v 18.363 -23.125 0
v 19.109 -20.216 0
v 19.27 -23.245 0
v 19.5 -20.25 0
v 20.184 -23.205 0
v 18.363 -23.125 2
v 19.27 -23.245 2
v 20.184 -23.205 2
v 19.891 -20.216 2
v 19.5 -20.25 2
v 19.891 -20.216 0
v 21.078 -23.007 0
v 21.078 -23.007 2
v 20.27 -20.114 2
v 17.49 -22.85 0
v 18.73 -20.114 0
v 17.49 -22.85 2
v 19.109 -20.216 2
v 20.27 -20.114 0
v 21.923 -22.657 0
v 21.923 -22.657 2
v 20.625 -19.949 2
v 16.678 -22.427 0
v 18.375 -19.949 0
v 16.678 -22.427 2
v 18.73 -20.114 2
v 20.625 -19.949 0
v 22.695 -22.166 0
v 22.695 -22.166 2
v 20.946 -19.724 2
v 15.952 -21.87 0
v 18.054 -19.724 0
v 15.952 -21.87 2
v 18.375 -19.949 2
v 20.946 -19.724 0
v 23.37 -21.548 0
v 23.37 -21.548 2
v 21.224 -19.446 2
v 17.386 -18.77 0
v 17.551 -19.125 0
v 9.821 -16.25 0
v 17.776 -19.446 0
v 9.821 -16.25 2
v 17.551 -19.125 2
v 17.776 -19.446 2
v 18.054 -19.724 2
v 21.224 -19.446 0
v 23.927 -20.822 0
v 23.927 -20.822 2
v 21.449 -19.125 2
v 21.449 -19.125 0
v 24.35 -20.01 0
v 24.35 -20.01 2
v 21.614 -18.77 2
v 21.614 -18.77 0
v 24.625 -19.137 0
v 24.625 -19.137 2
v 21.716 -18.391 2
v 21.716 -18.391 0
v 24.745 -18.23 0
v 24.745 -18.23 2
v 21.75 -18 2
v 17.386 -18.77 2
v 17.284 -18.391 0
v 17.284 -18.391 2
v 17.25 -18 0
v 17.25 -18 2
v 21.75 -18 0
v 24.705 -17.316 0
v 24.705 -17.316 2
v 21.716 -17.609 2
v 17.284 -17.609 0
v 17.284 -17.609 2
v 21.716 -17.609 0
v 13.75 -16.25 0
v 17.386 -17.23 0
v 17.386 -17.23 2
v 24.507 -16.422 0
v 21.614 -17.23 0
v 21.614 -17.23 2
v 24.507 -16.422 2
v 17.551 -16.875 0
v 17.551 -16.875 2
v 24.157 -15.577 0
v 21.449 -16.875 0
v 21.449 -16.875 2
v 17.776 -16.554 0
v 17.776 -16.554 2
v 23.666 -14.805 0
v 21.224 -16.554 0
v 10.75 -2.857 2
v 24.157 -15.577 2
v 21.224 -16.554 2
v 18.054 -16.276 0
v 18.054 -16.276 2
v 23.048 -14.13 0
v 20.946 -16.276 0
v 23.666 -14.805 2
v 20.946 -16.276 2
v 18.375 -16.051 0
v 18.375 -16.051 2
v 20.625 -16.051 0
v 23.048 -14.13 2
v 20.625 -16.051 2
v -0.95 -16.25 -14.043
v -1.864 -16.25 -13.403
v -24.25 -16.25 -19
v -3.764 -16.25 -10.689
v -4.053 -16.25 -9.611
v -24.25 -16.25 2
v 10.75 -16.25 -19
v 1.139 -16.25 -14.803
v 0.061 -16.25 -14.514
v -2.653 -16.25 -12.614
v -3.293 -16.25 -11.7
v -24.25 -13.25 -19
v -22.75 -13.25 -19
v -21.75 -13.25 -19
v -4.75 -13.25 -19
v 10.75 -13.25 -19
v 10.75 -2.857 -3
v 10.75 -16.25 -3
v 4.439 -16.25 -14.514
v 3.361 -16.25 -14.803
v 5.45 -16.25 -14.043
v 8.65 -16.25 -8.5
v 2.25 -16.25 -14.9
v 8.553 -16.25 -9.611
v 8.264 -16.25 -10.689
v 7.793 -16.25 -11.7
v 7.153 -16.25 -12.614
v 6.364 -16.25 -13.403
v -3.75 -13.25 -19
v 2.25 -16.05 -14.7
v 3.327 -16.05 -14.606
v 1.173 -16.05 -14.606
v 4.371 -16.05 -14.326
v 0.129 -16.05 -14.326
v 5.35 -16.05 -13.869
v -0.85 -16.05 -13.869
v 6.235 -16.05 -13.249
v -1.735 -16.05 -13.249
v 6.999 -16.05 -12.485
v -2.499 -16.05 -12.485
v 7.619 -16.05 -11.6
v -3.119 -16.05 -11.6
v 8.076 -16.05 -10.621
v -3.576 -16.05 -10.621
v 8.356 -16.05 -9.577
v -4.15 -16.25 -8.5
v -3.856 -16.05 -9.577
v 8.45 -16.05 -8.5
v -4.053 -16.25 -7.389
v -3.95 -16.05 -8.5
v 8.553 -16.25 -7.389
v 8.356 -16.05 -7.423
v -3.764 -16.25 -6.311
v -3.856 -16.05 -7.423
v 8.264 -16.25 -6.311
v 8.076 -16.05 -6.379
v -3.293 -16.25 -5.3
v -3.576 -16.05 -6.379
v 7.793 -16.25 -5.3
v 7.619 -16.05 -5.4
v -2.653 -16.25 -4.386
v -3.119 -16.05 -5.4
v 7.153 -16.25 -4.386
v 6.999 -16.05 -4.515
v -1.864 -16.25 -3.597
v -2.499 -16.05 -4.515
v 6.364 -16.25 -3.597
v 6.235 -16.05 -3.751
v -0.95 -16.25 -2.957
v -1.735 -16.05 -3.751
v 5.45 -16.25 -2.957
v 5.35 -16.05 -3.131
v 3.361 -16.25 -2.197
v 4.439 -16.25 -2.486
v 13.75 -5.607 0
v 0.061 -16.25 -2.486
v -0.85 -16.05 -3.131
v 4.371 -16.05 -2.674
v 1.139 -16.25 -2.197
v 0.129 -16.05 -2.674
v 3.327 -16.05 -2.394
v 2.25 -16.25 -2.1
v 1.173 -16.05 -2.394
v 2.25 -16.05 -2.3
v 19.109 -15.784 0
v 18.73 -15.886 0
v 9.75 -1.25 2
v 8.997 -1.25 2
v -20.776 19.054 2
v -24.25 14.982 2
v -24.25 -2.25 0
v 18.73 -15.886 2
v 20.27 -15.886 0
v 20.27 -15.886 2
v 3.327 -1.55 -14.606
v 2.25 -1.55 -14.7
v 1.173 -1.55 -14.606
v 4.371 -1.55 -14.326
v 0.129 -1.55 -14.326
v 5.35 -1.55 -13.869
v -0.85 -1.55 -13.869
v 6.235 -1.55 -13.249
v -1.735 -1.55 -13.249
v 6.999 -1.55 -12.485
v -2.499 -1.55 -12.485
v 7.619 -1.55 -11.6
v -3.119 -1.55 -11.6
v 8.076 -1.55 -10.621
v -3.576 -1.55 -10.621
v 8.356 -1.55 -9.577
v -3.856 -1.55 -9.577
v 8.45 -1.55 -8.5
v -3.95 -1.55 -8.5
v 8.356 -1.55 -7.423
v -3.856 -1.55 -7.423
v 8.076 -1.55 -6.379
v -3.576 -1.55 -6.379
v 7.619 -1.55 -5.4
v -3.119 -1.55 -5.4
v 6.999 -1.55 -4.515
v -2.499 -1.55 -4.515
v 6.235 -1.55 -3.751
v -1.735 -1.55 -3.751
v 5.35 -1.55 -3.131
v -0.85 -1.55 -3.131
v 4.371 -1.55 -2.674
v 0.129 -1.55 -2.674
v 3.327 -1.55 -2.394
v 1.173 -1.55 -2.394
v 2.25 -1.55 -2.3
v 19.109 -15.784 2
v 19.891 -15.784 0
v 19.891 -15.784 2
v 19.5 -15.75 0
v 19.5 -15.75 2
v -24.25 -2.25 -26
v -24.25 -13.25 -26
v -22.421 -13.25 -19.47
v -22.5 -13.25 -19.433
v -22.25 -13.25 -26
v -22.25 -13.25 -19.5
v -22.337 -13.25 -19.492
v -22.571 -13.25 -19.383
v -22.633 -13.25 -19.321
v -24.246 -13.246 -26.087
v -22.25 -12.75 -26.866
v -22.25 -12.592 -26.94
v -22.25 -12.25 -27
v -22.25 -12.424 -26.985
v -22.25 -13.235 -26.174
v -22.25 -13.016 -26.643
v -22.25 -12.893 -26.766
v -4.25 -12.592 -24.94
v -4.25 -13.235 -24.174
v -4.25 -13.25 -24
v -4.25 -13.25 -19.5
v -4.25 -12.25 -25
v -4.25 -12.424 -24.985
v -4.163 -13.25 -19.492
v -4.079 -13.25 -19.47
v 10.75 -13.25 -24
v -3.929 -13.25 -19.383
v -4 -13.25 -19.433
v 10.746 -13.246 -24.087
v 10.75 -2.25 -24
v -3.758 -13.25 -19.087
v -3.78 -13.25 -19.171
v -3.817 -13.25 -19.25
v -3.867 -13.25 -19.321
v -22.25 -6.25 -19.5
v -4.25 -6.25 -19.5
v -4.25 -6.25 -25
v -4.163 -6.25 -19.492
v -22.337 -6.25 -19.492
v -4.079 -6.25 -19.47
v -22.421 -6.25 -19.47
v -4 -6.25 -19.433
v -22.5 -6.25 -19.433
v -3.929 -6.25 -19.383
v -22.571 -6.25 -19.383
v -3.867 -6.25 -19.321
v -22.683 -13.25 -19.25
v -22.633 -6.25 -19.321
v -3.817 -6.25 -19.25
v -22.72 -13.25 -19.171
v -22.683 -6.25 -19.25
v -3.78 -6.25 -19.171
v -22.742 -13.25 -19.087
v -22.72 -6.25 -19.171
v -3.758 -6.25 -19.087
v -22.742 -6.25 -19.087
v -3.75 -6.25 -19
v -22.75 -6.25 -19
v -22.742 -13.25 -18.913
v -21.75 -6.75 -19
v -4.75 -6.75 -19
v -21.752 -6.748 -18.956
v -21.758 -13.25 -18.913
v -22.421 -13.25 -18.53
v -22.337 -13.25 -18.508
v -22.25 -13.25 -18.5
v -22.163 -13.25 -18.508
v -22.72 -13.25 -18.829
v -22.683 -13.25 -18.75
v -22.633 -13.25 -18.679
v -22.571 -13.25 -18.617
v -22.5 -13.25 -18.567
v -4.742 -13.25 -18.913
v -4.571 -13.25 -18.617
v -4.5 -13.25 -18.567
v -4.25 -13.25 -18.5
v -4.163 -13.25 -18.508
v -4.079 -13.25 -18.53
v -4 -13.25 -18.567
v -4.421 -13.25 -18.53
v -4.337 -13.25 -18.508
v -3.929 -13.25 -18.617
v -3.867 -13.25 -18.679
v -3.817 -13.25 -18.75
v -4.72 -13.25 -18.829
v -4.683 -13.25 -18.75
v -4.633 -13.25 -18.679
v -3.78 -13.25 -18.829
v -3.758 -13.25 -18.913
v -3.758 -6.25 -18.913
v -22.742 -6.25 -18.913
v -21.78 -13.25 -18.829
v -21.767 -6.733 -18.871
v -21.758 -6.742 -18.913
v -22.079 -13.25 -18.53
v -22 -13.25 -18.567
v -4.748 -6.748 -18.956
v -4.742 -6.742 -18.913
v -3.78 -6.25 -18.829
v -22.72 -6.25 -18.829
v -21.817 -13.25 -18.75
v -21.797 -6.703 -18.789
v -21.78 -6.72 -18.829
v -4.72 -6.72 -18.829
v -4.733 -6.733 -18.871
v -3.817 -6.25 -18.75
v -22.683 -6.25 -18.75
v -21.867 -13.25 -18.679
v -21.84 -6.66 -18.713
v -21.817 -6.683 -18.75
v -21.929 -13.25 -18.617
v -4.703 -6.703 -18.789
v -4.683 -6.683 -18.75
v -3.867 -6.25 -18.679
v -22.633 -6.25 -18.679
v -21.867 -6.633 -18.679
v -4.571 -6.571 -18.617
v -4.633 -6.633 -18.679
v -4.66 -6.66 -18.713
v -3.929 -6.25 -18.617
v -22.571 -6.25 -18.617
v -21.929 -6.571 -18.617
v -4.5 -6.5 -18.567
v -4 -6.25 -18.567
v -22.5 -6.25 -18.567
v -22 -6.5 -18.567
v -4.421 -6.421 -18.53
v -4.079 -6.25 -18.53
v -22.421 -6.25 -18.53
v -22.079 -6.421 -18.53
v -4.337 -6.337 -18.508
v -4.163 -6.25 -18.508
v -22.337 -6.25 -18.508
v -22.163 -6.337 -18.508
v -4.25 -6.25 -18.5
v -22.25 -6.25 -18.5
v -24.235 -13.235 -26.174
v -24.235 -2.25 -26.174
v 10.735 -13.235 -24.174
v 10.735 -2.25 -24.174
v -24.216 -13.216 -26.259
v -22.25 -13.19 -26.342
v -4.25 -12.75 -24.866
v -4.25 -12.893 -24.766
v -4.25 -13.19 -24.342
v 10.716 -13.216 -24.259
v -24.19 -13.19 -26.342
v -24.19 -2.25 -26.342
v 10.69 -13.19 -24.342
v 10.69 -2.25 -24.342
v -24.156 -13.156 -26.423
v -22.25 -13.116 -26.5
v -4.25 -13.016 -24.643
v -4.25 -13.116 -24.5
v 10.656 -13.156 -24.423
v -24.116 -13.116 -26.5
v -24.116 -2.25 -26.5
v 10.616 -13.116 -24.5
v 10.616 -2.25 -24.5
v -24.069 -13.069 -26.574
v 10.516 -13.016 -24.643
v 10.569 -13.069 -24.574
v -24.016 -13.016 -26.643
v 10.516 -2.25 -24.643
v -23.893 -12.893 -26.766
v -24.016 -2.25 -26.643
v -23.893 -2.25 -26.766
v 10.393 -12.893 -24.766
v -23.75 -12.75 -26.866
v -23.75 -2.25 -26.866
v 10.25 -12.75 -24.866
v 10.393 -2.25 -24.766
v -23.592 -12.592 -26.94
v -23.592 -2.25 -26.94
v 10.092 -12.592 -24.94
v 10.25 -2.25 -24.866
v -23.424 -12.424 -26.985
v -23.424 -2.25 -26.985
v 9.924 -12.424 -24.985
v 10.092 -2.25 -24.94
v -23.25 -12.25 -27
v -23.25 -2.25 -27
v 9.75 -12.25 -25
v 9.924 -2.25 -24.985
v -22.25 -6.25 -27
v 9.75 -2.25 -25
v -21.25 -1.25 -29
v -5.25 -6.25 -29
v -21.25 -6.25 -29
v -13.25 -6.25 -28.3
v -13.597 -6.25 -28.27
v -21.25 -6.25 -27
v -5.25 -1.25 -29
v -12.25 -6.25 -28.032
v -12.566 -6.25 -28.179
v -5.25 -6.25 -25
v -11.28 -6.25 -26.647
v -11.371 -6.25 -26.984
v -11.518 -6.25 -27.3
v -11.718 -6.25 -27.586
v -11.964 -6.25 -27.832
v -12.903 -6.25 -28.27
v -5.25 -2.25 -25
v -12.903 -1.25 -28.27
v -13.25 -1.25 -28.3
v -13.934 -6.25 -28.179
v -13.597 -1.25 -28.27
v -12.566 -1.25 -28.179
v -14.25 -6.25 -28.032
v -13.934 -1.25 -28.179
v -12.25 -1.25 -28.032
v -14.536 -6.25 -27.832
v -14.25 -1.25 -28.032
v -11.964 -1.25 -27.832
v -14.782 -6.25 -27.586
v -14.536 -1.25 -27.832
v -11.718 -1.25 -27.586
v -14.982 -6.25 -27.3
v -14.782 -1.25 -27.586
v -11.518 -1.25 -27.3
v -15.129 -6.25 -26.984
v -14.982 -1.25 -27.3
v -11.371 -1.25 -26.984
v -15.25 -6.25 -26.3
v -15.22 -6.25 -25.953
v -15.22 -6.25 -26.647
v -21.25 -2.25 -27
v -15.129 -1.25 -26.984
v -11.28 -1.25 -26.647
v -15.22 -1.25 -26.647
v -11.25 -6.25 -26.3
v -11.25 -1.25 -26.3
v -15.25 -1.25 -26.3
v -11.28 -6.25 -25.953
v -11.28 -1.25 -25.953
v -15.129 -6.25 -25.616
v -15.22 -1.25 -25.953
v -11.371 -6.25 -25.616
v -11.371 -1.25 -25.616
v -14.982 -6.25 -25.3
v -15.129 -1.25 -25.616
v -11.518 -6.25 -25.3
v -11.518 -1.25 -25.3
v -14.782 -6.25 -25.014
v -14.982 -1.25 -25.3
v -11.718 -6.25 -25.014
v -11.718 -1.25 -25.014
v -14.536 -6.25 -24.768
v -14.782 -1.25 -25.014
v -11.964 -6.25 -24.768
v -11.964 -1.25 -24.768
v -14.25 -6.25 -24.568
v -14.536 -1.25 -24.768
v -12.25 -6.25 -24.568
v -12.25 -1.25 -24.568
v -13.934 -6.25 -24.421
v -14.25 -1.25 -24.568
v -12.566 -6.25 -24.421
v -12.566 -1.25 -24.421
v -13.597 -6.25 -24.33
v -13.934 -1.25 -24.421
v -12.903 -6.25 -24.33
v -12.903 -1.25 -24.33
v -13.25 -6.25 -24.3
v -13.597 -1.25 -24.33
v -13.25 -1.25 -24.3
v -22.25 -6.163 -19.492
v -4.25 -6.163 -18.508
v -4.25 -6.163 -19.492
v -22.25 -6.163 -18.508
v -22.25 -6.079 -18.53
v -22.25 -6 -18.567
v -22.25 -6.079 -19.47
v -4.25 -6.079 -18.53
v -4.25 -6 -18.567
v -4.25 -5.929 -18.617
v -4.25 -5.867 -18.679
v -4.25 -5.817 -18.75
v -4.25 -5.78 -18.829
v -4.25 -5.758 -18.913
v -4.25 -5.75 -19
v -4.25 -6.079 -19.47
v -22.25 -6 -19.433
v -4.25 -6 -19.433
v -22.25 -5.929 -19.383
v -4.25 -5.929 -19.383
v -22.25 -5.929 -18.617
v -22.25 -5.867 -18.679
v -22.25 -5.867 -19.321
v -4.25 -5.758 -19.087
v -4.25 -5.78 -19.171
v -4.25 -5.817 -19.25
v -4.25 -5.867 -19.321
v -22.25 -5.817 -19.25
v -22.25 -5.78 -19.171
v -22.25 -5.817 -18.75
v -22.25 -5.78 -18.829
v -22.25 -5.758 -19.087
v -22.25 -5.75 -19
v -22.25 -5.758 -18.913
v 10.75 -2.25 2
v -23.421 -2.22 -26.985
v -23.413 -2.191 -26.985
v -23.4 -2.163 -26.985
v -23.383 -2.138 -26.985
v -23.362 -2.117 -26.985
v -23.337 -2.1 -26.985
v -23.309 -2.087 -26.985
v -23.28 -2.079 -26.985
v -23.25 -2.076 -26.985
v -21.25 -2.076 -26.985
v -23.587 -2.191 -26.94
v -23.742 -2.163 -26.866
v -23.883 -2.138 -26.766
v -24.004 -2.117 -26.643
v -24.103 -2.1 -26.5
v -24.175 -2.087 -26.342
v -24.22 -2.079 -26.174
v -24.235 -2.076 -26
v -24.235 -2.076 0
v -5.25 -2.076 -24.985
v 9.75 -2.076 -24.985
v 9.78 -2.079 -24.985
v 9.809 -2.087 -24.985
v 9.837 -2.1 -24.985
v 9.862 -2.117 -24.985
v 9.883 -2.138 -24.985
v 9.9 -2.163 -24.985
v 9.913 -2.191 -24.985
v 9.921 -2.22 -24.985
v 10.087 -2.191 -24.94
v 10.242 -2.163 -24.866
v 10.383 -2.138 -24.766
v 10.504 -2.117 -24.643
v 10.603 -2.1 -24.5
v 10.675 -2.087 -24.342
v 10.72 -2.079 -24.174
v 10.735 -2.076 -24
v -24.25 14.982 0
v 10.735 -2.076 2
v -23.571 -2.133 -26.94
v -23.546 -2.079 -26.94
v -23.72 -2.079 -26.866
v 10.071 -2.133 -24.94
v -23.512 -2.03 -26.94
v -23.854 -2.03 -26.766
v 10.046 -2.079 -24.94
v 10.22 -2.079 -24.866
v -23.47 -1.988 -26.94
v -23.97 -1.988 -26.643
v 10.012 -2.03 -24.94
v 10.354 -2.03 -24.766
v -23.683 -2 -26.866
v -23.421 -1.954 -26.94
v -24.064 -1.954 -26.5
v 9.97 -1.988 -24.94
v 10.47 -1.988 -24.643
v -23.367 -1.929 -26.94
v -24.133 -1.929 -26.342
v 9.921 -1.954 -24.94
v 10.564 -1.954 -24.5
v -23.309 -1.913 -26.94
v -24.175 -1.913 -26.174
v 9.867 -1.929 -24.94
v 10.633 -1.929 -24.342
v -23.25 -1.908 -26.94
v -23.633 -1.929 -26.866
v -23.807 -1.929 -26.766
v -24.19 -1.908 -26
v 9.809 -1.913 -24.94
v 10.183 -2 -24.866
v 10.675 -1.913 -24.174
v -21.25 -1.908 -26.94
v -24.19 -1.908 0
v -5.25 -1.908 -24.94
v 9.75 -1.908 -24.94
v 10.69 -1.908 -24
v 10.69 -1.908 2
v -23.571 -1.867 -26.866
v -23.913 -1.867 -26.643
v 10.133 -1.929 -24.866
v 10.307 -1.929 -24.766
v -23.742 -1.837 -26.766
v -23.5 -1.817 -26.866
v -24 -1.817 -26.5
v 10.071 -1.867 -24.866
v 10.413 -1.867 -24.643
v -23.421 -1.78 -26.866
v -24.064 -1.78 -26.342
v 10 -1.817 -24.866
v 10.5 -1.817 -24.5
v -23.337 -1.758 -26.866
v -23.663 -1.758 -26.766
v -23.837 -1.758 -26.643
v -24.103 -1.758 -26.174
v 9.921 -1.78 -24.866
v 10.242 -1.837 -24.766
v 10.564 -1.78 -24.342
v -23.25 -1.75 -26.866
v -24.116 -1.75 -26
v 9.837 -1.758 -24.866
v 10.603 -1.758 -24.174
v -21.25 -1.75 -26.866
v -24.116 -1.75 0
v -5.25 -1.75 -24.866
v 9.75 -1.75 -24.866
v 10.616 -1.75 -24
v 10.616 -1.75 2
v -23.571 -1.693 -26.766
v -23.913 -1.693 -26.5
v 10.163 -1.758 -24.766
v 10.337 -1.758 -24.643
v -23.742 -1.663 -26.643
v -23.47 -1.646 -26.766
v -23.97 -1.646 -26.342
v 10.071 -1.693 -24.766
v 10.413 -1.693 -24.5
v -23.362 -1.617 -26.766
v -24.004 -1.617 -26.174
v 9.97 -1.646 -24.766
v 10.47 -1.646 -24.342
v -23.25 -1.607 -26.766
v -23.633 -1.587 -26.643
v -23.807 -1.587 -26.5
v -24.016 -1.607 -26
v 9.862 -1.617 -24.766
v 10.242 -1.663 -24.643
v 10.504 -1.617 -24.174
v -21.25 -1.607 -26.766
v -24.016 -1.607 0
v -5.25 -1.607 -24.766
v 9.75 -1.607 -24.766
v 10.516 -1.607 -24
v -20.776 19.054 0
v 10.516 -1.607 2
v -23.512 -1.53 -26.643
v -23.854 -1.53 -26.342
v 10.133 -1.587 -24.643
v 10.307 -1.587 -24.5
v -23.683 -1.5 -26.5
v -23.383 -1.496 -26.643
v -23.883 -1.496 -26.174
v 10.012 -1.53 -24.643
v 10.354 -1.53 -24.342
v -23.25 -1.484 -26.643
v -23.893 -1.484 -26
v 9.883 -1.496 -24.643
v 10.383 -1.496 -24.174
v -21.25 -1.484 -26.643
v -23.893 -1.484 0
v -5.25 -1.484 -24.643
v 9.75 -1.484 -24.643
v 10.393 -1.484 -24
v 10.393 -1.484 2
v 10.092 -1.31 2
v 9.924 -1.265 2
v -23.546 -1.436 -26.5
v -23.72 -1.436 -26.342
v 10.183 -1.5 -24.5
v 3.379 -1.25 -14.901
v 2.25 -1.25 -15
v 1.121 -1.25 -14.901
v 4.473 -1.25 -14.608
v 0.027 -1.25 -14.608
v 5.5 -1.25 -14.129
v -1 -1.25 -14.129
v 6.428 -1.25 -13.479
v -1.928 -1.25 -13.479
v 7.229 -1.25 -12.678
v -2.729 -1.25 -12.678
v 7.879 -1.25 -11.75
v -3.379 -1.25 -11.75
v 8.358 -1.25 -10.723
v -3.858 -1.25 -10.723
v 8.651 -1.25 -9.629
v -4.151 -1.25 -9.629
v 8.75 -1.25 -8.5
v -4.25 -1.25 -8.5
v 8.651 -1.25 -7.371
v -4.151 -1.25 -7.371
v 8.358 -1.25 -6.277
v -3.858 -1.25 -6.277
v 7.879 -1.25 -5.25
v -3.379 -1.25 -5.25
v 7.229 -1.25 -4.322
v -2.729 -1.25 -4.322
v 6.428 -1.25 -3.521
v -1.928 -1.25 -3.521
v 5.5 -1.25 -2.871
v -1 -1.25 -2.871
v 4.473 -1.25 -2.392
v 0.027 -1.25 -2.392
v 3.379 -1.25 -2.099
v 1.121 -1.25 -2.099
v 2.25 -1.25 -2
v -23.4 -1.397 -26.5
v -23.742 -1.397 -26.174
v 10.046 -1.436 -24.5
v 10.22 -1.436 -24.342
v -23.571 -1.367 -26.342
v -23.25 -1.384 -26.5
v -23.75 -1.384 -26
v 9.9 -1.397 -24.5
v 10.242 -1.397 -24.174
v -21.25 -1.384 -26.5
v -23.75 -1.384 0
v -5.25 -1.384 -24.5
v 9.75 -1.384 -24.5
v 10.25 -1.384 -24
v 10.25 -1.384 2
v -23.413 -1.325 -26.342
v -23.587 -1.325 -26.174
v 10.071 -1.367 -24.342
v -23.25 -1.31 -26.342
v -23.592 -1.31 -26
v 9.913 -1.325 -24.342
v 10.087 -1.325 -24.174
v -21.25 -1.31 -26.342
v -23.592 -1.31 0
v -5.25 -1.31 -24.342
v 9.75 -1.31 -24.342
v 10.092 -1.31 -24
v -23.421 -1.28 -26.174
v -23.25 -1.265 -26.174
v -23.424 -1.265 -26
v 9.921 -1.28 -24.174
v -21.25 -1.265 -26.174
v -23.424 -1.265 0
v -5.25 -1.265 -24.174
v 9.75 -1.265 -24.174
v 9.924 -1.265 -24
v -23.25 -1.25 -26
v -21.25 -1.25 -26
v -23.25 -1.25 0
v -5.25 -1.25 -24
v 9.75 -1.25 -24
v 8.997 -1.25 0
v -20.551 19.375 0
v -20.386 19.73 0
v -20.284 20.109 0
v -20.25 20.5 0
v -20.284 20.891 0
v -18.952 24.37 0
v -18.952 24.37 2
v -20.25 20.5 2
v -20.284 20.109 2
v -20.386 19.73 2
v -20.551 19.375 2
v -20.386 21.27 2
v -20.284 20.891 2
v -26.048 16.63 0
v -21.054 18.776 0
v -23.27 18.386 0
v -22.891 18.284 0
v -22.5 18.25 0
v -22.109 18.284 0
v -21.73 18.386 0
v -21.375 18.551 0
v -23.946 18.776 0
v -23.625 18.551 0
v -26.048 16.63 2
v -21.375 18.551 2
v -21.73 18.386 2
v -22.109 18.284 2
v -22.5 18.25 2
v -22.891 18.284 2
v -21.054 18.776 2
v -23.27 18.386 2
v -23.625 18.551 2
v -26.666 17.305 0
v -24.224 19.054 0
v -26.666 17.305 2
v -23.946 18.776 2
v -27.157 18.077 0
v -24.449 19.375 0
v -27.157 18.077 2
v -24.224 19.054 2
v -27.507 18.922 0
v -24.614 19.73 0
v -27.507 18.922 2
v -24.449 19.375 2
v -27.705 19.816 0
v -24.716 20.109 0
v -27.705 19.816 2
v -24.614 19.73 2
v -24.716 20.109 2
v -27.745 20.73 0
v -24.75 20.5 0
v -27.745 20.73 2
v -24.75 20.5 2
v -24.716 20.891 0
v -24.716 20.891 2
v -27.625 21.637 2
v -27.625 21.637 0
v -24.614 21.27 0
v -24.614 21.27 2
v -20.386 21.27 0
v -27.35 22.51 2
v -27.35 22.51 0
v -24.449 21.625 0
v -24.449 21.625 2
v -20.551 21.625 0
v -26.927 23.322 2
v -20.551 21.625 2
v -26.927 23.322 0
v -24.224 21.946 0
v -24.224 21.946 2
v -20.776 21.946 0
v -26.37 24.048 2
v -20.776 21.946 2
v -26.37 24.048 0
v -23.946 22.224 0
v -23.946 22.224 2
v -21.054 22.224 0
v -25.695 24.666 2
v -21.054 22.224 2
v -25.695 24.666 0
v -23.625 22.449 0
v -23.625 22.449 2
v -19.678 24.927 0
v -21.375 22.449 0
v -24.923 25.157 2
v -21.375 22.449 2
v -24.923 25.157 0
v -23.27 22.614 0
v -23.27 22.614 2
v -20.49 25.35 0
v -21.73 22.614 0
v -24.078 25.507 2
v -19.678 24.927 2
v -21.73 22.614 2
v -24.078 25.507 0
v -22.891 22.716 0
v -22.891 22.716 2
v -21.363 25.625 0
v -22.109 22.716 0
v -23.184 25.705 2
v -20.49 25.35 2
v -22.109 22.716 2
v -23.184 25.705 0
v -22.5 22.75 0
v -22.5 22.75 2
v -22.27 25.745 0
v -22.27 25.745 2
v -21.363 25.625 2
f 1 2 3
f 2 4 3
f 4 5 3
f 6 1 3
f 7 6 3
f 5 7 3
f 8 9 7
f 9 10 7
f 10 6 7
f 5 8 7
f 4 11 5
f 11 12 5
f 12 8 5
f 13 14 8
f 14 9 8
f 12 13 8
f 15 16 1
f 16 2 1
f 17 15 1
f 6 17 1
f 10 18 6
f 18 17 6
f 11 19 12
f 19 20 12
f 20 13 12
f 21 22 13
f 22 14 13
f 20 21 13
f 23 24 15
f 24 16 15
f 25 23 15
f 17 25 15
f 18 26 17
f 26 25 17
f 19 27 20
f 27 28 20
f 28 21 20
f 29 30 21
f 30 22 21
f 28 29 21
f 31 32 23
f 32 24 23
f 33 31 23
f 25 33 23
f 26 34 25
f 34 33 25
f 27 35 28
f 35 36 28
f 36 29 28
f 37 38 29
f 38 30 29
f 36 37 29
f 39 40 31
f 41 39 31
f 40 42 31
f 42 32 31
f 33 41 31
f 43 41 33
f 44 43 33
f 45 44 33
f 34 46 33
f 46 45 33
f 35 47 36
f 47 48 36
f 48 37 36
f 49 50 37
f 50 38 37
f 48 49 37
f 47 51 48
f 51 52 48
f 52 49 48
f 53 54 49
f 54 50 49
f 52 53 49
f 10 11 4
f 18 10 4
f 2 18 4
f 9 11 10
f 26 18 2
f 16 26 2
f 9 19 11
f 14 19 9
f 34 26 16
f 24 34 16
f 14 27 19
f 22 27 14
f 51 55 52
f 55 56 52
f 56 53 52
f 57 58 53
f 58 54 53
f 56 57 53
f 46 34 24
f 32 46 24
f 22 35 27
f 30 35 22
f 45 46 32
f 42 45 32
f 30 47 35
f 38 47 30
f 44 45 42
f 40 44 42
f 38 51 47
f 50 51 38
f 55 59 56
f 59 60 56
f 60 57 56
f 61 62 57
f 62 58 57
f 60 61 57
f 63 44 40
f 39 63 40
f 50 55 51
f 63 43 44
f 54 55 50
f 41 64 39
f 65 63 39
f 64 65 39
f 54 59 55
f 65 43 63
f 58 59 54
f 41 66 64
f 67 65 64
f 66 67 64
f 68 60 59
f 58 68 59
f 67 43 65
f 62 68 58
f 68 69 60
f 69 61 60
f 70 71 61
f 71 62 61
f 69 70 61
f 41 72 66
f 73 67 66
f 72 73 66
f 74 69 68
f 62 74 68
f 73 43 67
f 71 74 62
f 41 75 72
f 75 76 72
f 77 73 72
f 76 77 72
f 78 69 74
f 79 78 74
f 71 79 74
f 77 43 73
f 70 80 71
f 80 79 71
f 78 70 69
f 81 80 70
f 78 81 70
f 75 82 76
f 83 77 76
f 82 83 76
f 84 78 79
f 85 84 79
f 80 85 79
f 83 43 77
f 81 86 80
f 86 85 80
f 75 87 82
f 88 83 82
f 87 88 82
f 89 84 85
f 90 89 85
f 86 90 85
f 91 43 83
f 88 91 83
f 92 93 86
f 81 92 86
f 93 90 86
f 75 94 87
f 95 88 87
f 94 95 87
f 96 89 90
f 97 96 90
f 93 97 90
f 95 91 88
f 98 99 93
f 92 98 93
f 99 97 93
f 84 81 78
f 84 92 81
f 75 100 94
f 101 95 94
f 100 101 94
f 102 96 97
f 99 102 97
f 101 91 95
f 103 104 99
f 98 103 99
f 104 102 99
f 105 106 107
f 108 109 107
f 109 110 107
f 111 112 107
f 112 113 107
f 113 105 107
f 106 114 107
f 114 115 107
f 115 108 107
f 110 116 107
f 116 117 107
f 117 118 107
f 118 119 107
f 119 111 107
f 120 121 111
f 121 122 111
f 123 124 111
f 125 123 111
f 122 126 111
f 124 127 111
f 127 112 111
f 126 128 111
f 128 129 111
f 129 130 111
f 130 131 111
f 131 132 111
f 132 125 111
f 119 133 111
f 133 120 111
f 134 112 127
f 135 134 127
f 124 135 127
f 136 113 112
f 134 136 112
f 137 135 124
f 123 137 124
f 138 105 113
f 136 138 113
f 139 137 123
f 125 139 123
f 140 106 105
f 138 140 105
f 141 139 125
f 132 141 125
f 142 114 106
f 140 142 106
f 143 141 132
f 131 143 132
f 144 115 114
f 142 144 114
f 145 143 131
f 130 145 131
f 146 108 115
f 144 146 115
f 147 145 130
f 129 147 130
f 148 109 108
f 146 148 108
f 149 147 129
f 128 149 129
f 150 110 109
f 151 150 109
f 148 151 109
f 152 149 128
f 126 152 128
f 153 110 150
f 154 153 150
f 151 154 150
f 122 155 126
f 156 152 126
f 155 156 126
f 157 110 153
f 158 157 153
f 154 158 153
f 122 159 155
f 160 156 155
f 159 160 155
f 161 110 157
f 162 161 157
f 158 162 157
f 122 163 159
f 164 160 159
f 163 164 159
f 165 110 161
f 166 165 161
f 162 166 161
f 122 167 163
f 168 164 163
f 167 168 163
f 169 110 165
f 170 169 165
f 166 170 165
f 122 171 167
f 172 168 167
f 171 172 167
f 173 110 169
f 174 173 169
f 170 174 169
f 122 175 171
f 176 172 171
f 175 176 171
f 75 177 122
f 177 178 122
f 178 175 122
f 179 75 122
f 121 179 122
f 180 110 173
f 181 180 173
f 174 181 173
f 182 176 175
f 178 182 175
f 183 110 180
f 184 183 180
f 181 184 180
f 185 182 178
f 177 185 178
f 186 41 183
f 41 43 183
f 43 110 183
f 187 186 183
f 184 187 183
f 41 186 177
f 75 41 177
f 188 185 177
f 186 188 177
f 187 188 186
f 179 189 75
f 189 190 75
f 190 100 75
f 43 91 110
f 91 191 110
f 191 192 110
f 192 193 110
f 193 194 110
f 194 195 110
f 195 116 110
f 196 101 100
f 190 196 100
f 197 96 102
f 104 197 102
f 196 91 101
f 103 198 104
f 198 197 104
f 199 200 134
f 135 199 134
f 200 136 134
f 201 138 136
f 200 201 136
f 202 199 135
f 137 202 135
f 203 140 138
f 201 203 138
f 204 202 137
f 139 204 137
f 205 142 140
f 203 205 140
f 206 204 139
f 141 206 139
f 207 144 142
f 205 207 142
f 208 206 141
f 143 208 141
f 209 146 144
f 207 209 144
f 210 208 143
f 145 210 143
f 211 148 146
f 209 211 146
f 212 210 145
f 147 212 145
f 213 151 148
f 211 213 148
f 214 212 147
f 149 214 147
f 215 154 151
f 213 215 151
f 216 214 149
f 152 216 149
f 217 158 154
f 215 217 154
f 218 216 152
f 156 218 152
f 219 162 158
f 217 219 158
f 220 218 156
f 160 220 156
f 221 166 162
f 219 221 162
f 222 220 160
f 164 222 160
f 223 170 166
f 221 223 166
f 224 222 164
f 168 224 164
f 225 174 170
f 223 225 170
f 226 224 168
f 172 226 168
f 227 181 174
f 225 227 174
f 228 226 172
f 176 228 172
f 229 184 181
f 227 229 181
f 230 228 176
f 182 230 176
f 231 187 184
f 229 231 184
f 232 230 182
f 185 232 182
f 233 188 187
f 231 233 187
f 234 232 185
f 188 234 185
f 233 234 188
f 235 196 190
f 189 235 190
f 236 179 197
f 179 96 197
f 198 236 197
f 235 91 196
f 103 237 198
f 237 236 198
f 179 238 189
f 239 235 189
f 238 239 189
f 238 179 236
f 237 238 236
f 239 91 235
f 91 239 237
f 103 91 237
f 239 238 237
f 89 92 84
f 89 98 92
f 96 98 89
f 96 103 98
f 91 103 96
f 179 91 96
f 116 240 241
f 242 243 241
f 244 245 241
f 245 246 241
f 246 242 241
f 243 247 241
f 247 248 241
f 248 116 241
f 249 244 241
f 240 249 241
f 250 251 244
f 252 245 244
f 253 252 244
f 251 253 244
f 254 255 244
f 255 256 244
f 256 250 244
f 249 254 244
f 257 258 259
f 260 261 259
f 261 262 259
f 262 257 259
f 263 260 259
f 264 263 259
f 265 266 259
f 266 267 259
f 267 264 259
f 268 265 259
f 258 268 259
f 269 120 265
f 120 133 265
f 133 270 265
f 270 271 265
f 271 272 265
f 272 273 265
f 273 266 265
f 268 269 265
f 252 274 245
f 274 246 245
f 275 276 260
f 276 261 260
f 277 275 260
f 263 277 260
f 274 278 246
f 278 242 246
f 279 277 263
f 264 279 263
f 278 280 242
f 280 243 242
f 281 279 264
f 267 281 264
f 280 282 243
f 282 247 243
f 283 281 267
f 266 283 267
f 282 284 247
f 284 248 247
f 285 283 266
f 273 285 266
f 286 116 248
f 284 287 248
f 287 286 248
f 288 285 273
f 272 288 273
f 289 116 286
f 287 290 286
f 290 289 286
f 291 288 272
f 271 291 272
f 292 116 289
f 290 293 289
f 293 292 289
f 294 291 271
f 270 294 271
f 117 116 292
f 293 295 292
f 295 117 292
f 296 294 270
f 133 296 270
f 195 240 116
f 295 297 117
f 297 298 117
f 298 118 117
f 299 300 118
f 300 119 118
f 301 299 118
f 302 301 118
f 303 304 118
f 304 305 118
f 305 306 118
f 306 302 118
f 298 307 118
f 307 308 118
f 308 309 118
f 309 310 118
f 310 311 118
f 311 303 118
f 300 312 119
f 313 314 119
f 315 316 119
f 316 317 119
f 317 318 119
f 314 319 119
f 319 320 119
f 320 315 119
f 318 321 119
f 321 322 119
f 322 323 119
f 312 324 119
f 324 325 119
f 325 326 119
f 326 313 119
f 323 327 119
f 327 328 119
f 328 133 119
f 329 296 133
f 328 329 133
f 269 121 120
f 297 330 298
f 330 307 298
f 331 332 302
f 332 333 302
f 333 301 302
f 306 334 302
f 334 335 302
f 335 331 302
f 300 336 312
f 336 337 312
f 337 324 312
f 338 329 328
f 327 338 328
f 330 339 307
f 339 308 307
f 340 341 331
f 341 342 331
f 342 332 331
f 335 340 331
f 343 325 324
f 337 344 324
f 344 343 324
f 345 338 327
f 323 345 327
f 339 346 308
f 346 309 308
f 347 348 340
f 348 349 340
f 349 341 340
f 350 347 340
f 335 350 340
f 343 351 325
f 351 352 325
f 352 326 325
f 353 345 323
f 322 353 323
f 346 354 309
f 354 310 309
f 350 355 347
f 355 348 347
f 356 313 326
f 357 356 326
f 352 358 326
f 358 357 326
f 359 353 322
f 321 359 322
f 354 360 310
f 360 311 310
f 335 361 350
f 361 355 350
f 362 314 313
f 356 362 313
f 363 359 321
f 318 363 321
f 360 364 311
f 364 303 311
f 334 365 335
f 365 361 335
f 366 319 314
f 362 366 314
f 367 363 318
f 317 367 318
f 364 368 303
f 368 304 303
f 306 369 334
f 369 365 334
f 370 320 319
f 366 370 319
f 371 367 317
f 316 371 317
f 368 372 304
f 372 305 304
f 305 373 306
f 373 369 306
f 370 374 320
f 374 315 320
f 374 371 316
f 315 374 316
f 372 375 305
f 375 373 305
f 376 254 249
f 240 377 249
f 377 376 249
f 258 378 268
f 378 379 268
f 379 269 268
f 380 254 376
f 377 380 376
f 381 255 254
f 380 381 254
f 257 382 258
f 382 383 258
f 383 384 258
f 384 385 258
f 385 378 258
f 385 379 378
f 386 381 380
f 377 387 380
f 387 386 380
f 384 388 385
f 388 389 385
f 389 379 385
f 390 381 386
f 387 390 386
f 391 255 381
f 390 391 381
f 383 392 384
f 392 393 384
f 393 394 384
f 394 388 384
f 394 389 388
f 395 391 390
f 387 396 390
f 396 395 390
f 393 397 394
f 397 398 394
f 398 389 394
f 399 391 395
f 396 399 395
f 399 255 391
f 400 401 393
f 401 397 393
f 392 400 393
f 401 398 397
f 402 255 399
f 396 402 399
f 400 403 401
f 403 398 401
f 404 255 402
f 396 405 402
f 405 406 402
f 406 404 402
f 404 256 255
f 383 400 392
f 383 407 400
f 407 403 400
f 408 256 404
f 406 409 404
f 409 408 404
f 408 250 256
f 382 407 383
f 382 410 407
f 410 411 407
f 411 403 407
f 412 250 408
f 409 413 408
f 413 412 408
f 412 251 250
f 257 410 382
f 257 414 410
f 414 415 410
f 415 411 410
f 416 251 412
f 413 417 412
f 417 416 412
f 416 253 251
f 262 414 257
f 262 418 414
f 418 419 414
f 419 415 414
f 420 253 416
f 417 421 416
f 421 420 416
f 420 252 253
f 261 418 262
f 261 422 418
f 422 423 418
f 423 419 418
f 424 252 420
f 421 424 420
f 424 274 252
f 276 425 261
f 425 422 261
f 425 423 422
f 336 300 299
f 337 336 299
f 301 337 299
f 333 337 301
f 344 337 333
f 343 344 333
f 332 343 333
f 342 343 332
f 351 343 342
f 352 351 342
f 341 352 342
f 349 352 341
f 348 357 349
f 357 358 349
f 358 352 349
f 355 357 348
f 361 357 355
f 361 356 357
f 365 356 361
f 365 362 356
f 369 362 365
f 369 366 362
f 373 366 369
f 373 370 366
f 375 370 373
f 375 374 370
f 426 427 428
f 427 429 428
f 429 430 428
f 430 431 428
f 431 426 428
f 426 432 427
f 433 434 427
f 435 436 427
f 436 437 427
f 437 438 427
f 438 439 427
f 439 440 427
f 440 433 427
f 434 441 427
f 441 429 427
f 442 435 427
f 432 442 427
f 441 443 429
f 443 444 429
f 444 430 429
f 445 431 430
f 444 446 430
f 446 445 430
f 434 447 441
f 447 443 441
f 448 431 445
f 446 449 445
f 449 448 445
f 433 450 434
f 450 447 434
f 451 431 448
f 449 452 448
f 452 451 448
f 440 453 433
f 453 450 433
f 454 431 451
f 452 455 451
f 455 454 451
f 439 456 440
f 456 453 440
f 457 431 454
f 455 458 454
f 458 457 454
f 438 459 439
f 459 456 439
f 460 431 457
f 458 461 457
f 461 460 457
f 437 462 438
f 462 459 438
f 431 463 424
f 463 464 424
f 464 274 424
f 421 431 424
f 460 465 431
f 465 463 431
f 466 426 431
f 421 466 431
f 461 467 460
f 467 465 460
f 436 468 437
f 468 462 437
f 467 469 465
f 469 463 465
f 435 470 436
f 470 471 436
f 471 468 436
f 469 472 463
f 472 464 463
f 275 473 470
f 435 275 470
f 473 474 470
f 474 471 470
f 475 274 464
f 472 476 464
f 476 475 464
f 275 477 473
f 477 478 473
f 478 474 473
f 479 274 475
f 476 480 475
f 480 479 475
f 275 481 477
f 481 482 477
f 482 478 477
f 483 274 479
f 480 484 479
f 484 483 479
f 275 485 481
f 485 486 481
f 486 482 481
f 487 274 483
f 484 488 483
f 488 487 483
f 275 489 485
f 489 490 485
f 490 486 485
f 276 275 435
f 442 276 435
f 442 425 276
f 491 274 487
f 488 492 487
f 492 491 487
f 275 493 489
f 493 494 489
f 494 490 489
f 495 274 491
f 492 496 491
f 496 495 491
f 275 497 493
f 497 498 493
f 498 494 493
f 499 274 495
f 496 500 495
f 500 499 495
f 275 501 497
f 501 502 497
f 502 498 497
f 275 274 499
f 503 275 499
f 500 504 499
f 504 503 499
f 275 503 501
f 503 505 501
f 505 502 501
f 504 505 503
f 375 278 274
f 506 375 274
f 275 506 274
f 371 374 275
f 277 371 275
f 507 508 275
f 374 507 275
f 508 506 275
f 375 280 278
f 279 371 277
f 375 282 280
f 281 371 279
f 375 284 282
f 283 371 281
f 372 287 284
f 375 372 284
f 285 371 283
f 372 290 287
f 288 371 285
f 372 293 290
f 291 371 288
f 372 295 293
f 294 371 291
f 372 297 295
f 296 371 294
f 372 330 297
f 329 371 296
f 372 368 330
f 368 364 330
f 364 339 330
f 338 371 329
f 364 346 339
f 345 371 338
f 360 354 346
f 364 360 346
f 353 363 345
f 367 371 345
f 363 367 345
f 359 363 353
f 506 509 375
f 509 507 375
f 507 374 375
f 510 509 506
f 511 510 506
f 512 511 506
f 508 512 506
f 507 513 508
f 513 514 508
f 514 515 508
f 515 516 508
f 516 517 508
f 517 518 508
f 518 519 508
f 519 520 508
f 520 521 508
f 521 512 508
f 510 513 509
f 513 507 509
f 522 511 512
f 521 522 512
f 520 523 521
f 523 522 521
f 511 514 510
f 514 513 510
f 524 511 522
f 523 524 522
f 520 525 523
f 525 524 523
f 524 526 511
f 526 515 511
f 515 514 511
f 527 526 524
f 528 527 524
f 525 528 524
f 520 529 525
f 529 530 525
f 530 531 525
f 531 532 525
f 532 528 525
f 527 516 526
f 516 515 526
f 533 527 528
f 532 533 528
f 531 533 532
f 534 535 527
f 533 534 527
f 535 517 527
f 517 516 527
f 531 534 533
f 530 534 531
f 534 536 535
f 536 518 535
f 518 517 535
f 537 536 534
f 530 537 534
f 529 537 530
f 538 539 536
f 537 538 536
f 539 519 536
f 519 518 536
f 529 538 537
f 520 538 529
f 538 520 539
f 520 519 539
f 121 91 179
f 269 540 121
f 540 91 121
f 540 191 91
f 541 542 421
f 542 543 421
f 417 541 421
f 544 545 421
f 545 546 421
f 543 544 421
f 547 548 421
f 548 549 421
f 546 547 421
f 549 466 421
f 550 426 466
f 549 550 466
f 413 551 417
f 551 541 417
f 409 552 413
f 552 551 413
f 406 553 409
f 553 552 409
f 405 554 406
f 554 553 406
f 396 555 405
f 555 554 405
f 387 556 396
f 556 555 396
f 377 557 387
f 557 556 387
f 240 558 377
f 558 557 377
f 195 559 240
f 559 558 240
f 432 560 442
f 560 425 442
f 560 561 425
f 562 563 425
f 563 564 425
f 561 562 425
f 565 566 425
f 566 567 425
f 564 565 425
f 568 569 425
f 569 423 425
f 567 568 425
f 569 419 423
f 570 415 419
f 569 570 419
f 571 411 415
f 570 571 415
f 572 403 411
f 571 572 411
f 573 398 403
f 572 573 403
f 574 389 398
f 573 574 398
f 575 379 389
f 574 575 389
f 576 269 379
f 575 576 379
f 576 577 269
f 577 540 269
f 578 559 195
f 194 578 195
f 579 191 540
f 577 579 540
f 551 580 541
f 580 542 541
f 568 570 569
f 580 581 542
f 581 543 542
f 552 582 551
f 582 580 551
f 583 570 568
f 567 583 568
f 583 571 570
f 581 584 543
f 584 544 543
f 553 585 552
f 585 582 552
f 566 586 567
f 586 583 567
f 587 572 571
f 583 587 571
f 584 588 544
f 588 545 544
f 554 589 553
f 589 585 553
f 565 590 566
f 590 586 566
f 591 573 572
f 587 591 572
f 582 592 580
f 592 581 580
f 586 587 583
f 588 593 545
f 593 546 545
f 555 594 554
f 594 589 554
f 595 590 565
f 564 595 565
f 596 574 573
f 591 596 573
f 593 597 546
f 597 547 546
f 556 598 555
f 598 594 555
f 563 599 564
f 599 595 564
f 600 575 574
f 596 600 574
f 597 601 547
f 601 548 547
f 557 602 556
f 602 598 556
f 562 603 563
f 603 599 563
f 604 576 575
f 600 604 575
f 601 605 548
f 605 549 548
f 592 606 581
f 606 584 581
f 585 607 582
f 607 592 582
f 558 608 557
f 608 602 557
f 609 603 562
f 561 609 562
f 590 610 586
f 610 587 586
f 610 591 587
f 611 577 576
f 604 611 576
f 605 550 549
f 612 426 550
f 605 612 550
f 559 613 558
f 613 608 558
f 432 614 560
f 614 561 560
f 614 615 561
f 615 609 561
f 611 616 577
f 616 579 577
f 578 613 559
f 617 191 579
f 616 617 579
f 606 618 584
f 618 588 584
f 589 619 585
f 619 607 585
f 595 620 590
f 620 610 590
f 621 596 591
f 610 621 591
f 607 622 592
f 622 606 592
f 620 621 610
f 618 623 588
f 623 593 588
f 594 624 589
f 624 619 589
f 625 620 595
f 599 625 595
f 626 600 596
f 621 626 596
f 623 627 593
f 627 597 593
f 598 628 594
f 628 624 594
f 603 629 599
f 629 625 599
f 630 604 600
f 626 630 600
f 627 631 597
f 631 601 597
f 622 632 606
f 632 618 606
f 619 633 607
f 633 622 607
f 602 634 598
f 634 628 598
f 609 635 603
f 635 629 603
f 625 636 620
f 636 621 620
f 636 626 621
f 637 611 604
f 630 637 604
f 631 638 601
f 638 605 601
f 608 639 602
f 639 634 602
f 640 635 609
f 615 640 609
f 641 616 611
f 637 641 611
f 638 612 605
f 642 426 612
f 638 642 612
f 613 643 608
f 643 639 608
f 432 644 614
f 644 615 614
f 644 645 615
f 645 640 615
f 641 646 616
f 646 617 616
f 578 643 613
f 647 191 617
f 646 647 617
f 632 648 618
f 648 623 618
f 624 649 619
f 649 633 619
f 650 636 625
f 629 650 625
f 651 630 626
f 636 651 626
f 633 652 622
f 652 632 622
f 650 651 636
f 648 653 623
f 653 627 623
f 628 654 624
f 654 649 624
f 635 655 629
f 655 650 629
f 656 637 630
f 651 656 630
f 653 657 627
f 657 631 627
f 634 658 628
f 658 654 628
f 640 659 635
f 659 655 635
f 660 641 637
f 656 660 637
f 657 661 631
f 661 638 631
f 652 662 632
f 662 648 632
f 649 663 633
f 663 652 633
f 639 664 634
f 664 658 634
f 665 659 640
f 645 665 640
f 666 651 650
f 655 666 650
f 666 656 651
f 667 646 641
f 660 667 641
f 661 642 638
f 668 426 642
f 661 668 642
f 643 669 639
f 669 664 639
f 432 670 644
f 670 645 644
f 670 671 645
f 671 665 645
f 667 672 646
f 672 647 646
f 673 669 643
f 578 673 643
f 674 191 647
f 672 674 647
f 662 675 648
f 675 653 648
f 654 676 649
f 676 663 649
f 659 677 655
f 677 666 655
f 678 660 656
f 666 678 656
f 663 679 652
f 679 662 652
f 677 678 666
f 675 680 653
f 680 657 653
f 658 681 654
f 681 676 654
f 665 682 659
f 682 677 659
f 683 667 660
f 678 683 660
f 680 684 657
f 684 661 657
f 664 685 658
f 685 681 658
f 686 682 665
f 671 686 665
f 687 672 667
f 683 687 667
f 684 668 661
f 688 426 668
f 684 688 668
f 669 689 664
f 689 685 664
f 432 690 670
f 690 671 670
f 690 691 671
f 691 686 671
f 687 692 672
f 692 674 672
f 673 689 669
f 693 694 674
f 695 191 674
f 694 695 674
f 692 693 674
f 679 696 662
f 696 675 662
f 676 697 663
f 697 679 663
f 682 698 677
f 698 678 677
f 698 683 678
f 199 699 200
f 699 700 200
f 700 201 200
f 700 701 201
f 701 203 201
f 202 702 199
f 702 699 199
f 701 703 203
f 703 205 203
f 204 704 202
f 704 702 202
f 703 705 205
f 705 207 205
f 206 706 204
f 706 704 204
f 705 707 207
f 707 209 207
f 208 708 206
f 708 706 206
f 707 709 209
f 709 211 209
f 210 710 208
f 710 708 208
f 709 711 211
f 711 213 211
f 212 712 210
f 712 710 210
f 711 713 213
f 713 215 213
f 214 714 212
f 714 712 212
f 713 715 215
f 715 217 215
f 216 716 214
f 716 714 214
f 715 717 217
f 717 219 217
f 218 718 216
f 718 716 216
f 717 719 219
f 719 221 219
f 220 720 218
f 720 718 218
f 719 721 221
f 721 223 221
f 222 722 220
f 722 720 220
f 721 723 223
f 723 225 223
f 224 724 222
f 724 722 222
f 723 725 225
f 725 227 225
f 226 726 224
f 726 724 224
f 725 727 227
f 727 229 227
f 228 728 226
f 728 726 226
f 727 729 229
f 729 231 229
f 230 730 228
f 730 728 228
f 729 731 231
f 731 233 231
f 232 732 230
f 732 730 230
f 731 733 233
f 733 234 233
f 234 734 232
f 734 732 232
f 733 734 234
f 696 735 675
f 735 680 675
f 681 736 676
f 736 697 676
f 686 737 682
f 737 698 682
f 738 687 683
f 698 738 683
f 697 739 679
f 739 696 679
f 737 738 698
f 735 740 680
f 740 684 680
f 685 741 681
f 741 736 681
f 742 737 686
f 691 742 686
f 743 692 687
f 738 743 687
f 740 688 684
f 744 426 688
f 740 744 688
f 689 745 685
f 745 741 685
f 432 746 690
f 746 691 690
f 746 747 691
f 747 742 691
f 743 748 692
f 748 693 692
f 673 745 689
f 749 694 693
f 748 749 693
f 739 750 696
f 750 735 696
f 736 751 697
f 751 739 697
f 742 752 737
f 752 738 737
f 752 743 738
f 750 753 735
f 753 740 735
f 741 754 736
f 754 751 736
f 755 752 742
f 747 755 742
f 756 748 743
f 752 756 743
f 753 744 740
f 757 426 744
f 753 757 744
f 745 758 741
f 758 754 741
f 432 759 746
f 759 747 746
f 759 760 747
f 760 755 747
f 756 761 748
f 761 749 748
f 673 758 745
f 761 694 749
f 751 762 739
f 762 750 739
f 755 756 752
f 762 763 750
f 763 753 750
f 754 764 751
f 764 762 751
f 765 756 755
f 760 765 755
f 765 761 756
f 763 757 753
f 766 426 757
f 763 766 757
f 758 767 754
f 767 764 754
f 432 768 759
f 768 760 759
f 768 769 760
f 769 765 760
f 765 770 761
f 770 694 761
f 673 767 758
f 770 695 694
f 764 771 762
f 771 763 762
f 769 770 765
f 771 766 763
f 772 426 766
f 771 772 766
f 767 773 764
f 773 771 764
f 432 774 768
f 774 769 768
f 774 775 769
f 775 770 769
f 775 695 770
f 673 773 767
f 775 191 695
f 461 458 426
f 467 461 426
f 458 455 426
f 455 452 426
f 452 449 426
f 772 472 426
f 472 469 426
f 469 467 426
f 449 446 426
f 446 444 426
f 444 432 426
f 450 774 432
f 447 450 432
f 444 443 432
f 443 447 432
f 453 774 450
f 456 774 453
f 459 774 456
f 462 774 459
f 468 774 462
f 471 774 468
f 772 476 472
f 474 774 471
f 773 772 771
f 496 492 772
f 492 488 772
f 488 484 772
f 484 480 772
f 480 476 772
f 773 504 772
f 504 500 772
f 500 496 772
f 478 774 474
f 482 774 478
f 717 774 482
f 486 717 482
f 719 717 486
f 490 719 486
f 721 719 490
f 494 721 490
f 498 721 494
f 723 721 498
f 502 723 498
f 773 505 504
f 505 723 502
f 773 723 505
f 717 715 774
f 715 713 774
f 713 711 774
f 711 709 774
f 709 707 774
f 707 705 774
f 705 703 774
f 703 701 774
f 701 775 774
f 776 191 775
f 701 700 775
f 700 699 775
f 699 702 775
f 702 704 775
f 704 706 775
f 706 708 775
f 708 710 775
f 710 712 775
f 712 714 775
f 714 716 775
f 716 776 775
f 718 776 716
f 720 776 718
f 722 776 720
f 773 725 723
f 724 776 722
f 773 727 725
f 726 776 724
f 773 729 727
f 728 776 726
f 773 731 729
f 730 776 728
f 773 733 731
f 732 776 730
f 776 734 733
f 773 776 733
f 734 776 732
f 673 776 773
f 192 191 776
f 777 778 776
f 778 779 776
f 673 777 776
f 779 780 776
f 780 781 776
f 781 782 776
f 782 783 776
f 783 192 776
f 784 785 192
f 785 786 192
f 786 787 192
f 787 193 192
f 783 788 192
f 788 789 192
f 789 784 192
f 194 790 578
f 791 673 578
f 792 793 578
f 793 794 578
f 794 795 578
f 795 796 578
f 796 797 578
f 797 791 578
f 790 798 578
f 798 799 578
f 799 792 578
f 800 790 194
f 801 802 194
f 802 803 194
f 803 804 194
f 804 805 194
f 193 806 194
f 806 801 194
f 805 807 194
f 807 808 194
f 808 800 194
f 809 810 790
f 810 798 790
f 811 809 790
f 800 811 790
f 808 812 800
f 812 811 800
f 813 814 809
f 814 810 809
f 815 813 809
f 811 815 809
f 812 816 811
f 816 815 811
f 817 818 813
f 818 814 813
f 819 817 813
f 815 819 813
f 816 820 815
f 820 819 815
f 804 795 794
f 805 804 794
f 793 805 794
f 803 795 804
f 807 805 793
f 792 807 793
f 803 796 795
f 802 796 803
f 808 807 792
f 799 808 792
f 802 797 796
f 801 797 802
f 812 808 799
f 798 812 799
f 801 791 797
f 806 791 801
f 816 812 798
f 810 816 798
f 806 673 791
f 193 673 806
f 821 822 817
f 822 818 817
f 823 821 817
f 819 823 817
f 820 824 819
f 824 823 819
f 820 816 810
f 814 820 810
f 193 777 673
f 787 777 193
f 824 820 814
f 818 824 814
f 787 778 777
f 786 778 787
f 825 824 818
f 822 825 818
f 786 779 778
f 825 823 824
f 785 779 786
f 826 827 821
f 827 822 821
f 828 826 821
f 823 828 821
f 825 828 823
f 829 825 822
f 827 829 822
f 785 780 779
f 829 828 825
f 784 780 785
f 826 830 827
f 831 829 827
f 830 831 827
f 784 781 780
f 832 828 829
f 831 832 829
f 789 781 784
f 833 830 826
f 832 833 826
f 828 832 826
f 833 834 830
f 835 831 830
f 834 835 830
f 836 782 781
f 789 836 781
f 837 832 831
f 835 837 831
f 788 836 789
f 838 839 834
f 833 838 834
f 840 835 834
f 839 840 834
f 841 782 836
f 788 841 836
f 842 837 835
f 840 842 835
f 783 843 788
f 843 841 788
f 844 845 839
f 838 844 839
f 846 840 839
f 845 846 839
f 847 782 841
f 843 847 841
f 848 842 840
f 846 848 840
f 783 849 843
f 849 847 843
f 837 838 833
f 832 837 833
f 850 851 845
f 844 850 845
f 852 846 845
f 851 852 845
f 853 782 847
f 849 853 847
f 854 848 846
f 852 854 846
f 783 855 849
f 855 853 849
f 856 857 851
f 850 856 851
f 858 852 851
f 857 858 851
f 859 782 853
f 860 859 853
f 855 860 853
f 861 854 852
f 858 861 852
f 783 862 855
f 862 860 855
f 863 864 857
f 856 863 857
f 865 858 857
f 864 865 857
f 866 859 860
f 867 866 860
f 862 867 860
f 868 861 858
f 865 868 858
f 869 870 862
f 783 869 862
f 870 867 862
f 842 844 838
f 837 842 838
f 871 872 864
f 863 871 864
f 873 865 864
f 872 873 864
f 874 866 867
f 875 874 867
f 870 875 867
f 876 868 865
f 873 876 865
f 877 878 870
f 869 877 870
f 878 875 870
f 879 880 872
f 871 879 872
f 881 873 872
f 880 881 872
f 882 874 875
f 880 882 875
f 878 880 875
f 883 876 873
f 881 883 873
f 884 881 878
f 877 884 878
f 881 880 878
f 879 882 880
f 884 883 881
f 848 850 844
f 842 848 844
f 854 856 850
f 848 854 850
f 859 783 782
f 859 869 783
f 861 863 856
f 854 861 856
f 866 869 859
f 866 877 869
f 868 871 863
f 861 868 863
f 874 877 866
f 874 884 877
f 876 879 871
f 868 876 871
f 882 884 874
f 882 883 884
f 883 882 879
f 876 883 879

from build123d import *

# Parameters (mm, degrees)
SKETCH1_R           = 2.25
BOSS_EXTRUDE1_DEPTH = 2
SKETCH2_W           = 35
SKETCH2_H           = 15
BOSS_EXTRUDE2_DEPTH = 31
CUT_EXTRUDE1_DEPTH  = 10
SKETCH4_R           = 2
CUT_EXTRUDE2_DEPTH  = 49.3741925
CHAMFER1_SIZE       = 3
SKETCH11_W          = 16
SKETCH11_H          = 12
CUT_EXTRUDE4_DEPTH  = 4
SKETCH13_W          = 3
SKETCH13_H          = 12
CUT_EXTRUDE5_DEPTH  = 2
BOSS_EXTRUDE7_DEPTH = 2
FILLET1_R           = 1
SKETCH15_R          = 0.5
CUT_EXTRUDE6_DEPTH  = 7
CUT_EXTRUDE7_START  = -2
SKETCH16_R          = 0.5
CUT_EXTRUDE7_DEPTH  = 18


with BuildPart() as part:
    # Sketch1 → Boss-Extrude1 (new body)
    with BuildSketch(Plane.XY):
        with BuildLine():
            Line((-18.9524457, 24.370059236), (23.0475543, -14.129940764))
            ThreePointArc((23.0475543, -14.129940764), (23.370059236, -21.5475543), (15.9524457, -21.870059236))
            Line((15.9524457, -21.870059236), (-26.0475543, 16.629940764))
            ThreePointArc((-26.0475543, 16.629940764), (-26.370059236, 24.0475543), (-18.9524457, 24.370059236))
        make_face()
        with Locations((-22.5, 20.5)):
            Circle(SKETCH1_R, mode=Mode.SUBTRACT)
        with Locations((19.5, -18)):
            Circle(SKETCH1_R, mode=Mode.SUBTRACT)
    extrude(amount=BOSS_EXTRUDE1_DEPTH)

    # Sketch2 → Boss-Extrude2 (add)
    with BuildSketch(Plane(origin=(0, 0, 2), x_dir=(-1, 0, 0), z_dir=(0, 0, -1))):
        with Locations((6.75, -8.75)):
            Rectangle(SKETCH2_W, SKETCH2_H)
    extrude(amount=BOSS_EXTRUDE2_DEPTH)

    # Sketch3 → Cut-Extrude1 (cut)
    with BuildSketch(Plane(origin=(0, 0, -29), x_dir=(-1, 0, 0), z_dir=(0, 0, -1))):
        Polygon((22.25, -13.25), (22.25, -6.25), (4.25, -6.25), (4.25, -13.25), (-10.75, -13.25), (-10.75, -16.25), (24.25, -16.25), (24.25, -13.25), align=None)
    extrude(amount=-CUT_EXTRUDE1_DEPTH, mode=Mode.SUBTRACT)

    # Sketch4 → Cut-Extrude2 (cut, through all)
    with BuildSketch(Plane(origin=(0, -1.25, 0), x_dir=(1, 0, 0), z_dir=(0, 1, 0))):
        with Locations(Location((-13.25, 26.3, 0), (0, 0, 270))):
            Circle(SKETCH4_R)
    extrude(amount=-CUT_EXTRUDE2_DEPTH, mode=Mode.SUBTRACT)

    # Chamfer1
    chamfer1_edges = [part.edges().sort_by_distance(p)[0] for p in [
        (10.75, -9.553591328, 0),
    ]]
    chamfer(chamfer1_edges, length=CHAMFER1_SIZE)

    # Sketch7 → Ø12.0mm Clearance Dowel Hole1 (revolve, cut)
    with BuildSketch(Plane(origin=(2.25, -16.25, -8.5), x_dir=(0, 0, -1), z_dir=(1, 0, 0))):
        Polygon((0, 0), (0, 15), (6.5, 15), (6.2, 14.7), (6.2, 0.2), (6.4, 0), align=None)
    revolve(axis=Axis((2.25, -22.6, -8.5), (0, 1, 0)), mode=Mode.SUBTRACT)

    # Sketch11 → Cut-Extrude4 (cut)
    with BuildSketch(Plane(origin=(0, 0, -29), x_dir=(-1, 0, 0), z_dir=(0, 0, -1))):
        with Locations((-2.75, -7.25)):
            Rectangle(SKETCH11_W, SKETCH11_H)
    extrude(amount=-CUT_EXTRUDE4_DEPTH, mode=Mode.SUBTRACT)

    # Sketch13 → Cut-Extrude5 (cut)
    with BuildSketch(Plane(origin=(0, 0, -29), x_dir=(-1, 0, 0), z_dir=(0, 0, -1))):
        with Locations((22.75, -7.25)):
            Rectangle(SKETCH13_W, SKETCH13_H)
    extrude(amount=-CUT_EXTRUDE5_DEPTH, mode=Mode.SUBTRACT)

    # Sketch9 → Boss-Extrude7 (add)
    with BuildSketch(Plane(origin=(0, 0, 2), x_dir=(-1, 0, 0), z_dir=(0, 0, -1))):
        Polygon((24.25, -1.25), (24.25, 14.982182656), (6.542164375, -1.25), align=None)
    extrude(amount=BOSS_EXTRUDE7_DEPTH)

    # Fillet1
    fillet1_edges = [part.edges().sort_by_distance(p)[0] for p in [
        (10.75, -1.25, -11.5),
        (3.25, -13.25, -25),
        (10.75, -7.25, -25),
        (2.75, -1.25, -25),
        (-23.25, -13.25, -27),
        (-24.25, -1.25, -13.5),
        (-24.25, -7.25, -27),
        (-22.75, -1.25, -27),
    ]]
    fillet(fillet1_edges, radius=FILLET1_R)

    # Sketch15 → Cut-Extrude6 (cut)
    with BuildSketch(Plane.XZ.offset(13.25)):
        with Locations((-4.25, -19)):
            Circle(SKETCH15_R)
        with Locations((-22.25, -19)):
            Circle(SKETCH15_R)
    extrude(amount=-CUT_EXTRUDE6_DEPTH, mode=Mode.SUBTRACT)

    # Sketch16 → Cut-Extrude7 (cut)
    with BuildSketch(Plane.ZY.offset(24.25).offset(CUT_EXTRUDE7_START)):
        with Locations((-19, -6.25)):
            Circle(SKETCH16_R)
    extrude(amount=-CUT_EXTRUDE7_DEPTH, mode=Mode.SUBTRACT)


solid = part.part
